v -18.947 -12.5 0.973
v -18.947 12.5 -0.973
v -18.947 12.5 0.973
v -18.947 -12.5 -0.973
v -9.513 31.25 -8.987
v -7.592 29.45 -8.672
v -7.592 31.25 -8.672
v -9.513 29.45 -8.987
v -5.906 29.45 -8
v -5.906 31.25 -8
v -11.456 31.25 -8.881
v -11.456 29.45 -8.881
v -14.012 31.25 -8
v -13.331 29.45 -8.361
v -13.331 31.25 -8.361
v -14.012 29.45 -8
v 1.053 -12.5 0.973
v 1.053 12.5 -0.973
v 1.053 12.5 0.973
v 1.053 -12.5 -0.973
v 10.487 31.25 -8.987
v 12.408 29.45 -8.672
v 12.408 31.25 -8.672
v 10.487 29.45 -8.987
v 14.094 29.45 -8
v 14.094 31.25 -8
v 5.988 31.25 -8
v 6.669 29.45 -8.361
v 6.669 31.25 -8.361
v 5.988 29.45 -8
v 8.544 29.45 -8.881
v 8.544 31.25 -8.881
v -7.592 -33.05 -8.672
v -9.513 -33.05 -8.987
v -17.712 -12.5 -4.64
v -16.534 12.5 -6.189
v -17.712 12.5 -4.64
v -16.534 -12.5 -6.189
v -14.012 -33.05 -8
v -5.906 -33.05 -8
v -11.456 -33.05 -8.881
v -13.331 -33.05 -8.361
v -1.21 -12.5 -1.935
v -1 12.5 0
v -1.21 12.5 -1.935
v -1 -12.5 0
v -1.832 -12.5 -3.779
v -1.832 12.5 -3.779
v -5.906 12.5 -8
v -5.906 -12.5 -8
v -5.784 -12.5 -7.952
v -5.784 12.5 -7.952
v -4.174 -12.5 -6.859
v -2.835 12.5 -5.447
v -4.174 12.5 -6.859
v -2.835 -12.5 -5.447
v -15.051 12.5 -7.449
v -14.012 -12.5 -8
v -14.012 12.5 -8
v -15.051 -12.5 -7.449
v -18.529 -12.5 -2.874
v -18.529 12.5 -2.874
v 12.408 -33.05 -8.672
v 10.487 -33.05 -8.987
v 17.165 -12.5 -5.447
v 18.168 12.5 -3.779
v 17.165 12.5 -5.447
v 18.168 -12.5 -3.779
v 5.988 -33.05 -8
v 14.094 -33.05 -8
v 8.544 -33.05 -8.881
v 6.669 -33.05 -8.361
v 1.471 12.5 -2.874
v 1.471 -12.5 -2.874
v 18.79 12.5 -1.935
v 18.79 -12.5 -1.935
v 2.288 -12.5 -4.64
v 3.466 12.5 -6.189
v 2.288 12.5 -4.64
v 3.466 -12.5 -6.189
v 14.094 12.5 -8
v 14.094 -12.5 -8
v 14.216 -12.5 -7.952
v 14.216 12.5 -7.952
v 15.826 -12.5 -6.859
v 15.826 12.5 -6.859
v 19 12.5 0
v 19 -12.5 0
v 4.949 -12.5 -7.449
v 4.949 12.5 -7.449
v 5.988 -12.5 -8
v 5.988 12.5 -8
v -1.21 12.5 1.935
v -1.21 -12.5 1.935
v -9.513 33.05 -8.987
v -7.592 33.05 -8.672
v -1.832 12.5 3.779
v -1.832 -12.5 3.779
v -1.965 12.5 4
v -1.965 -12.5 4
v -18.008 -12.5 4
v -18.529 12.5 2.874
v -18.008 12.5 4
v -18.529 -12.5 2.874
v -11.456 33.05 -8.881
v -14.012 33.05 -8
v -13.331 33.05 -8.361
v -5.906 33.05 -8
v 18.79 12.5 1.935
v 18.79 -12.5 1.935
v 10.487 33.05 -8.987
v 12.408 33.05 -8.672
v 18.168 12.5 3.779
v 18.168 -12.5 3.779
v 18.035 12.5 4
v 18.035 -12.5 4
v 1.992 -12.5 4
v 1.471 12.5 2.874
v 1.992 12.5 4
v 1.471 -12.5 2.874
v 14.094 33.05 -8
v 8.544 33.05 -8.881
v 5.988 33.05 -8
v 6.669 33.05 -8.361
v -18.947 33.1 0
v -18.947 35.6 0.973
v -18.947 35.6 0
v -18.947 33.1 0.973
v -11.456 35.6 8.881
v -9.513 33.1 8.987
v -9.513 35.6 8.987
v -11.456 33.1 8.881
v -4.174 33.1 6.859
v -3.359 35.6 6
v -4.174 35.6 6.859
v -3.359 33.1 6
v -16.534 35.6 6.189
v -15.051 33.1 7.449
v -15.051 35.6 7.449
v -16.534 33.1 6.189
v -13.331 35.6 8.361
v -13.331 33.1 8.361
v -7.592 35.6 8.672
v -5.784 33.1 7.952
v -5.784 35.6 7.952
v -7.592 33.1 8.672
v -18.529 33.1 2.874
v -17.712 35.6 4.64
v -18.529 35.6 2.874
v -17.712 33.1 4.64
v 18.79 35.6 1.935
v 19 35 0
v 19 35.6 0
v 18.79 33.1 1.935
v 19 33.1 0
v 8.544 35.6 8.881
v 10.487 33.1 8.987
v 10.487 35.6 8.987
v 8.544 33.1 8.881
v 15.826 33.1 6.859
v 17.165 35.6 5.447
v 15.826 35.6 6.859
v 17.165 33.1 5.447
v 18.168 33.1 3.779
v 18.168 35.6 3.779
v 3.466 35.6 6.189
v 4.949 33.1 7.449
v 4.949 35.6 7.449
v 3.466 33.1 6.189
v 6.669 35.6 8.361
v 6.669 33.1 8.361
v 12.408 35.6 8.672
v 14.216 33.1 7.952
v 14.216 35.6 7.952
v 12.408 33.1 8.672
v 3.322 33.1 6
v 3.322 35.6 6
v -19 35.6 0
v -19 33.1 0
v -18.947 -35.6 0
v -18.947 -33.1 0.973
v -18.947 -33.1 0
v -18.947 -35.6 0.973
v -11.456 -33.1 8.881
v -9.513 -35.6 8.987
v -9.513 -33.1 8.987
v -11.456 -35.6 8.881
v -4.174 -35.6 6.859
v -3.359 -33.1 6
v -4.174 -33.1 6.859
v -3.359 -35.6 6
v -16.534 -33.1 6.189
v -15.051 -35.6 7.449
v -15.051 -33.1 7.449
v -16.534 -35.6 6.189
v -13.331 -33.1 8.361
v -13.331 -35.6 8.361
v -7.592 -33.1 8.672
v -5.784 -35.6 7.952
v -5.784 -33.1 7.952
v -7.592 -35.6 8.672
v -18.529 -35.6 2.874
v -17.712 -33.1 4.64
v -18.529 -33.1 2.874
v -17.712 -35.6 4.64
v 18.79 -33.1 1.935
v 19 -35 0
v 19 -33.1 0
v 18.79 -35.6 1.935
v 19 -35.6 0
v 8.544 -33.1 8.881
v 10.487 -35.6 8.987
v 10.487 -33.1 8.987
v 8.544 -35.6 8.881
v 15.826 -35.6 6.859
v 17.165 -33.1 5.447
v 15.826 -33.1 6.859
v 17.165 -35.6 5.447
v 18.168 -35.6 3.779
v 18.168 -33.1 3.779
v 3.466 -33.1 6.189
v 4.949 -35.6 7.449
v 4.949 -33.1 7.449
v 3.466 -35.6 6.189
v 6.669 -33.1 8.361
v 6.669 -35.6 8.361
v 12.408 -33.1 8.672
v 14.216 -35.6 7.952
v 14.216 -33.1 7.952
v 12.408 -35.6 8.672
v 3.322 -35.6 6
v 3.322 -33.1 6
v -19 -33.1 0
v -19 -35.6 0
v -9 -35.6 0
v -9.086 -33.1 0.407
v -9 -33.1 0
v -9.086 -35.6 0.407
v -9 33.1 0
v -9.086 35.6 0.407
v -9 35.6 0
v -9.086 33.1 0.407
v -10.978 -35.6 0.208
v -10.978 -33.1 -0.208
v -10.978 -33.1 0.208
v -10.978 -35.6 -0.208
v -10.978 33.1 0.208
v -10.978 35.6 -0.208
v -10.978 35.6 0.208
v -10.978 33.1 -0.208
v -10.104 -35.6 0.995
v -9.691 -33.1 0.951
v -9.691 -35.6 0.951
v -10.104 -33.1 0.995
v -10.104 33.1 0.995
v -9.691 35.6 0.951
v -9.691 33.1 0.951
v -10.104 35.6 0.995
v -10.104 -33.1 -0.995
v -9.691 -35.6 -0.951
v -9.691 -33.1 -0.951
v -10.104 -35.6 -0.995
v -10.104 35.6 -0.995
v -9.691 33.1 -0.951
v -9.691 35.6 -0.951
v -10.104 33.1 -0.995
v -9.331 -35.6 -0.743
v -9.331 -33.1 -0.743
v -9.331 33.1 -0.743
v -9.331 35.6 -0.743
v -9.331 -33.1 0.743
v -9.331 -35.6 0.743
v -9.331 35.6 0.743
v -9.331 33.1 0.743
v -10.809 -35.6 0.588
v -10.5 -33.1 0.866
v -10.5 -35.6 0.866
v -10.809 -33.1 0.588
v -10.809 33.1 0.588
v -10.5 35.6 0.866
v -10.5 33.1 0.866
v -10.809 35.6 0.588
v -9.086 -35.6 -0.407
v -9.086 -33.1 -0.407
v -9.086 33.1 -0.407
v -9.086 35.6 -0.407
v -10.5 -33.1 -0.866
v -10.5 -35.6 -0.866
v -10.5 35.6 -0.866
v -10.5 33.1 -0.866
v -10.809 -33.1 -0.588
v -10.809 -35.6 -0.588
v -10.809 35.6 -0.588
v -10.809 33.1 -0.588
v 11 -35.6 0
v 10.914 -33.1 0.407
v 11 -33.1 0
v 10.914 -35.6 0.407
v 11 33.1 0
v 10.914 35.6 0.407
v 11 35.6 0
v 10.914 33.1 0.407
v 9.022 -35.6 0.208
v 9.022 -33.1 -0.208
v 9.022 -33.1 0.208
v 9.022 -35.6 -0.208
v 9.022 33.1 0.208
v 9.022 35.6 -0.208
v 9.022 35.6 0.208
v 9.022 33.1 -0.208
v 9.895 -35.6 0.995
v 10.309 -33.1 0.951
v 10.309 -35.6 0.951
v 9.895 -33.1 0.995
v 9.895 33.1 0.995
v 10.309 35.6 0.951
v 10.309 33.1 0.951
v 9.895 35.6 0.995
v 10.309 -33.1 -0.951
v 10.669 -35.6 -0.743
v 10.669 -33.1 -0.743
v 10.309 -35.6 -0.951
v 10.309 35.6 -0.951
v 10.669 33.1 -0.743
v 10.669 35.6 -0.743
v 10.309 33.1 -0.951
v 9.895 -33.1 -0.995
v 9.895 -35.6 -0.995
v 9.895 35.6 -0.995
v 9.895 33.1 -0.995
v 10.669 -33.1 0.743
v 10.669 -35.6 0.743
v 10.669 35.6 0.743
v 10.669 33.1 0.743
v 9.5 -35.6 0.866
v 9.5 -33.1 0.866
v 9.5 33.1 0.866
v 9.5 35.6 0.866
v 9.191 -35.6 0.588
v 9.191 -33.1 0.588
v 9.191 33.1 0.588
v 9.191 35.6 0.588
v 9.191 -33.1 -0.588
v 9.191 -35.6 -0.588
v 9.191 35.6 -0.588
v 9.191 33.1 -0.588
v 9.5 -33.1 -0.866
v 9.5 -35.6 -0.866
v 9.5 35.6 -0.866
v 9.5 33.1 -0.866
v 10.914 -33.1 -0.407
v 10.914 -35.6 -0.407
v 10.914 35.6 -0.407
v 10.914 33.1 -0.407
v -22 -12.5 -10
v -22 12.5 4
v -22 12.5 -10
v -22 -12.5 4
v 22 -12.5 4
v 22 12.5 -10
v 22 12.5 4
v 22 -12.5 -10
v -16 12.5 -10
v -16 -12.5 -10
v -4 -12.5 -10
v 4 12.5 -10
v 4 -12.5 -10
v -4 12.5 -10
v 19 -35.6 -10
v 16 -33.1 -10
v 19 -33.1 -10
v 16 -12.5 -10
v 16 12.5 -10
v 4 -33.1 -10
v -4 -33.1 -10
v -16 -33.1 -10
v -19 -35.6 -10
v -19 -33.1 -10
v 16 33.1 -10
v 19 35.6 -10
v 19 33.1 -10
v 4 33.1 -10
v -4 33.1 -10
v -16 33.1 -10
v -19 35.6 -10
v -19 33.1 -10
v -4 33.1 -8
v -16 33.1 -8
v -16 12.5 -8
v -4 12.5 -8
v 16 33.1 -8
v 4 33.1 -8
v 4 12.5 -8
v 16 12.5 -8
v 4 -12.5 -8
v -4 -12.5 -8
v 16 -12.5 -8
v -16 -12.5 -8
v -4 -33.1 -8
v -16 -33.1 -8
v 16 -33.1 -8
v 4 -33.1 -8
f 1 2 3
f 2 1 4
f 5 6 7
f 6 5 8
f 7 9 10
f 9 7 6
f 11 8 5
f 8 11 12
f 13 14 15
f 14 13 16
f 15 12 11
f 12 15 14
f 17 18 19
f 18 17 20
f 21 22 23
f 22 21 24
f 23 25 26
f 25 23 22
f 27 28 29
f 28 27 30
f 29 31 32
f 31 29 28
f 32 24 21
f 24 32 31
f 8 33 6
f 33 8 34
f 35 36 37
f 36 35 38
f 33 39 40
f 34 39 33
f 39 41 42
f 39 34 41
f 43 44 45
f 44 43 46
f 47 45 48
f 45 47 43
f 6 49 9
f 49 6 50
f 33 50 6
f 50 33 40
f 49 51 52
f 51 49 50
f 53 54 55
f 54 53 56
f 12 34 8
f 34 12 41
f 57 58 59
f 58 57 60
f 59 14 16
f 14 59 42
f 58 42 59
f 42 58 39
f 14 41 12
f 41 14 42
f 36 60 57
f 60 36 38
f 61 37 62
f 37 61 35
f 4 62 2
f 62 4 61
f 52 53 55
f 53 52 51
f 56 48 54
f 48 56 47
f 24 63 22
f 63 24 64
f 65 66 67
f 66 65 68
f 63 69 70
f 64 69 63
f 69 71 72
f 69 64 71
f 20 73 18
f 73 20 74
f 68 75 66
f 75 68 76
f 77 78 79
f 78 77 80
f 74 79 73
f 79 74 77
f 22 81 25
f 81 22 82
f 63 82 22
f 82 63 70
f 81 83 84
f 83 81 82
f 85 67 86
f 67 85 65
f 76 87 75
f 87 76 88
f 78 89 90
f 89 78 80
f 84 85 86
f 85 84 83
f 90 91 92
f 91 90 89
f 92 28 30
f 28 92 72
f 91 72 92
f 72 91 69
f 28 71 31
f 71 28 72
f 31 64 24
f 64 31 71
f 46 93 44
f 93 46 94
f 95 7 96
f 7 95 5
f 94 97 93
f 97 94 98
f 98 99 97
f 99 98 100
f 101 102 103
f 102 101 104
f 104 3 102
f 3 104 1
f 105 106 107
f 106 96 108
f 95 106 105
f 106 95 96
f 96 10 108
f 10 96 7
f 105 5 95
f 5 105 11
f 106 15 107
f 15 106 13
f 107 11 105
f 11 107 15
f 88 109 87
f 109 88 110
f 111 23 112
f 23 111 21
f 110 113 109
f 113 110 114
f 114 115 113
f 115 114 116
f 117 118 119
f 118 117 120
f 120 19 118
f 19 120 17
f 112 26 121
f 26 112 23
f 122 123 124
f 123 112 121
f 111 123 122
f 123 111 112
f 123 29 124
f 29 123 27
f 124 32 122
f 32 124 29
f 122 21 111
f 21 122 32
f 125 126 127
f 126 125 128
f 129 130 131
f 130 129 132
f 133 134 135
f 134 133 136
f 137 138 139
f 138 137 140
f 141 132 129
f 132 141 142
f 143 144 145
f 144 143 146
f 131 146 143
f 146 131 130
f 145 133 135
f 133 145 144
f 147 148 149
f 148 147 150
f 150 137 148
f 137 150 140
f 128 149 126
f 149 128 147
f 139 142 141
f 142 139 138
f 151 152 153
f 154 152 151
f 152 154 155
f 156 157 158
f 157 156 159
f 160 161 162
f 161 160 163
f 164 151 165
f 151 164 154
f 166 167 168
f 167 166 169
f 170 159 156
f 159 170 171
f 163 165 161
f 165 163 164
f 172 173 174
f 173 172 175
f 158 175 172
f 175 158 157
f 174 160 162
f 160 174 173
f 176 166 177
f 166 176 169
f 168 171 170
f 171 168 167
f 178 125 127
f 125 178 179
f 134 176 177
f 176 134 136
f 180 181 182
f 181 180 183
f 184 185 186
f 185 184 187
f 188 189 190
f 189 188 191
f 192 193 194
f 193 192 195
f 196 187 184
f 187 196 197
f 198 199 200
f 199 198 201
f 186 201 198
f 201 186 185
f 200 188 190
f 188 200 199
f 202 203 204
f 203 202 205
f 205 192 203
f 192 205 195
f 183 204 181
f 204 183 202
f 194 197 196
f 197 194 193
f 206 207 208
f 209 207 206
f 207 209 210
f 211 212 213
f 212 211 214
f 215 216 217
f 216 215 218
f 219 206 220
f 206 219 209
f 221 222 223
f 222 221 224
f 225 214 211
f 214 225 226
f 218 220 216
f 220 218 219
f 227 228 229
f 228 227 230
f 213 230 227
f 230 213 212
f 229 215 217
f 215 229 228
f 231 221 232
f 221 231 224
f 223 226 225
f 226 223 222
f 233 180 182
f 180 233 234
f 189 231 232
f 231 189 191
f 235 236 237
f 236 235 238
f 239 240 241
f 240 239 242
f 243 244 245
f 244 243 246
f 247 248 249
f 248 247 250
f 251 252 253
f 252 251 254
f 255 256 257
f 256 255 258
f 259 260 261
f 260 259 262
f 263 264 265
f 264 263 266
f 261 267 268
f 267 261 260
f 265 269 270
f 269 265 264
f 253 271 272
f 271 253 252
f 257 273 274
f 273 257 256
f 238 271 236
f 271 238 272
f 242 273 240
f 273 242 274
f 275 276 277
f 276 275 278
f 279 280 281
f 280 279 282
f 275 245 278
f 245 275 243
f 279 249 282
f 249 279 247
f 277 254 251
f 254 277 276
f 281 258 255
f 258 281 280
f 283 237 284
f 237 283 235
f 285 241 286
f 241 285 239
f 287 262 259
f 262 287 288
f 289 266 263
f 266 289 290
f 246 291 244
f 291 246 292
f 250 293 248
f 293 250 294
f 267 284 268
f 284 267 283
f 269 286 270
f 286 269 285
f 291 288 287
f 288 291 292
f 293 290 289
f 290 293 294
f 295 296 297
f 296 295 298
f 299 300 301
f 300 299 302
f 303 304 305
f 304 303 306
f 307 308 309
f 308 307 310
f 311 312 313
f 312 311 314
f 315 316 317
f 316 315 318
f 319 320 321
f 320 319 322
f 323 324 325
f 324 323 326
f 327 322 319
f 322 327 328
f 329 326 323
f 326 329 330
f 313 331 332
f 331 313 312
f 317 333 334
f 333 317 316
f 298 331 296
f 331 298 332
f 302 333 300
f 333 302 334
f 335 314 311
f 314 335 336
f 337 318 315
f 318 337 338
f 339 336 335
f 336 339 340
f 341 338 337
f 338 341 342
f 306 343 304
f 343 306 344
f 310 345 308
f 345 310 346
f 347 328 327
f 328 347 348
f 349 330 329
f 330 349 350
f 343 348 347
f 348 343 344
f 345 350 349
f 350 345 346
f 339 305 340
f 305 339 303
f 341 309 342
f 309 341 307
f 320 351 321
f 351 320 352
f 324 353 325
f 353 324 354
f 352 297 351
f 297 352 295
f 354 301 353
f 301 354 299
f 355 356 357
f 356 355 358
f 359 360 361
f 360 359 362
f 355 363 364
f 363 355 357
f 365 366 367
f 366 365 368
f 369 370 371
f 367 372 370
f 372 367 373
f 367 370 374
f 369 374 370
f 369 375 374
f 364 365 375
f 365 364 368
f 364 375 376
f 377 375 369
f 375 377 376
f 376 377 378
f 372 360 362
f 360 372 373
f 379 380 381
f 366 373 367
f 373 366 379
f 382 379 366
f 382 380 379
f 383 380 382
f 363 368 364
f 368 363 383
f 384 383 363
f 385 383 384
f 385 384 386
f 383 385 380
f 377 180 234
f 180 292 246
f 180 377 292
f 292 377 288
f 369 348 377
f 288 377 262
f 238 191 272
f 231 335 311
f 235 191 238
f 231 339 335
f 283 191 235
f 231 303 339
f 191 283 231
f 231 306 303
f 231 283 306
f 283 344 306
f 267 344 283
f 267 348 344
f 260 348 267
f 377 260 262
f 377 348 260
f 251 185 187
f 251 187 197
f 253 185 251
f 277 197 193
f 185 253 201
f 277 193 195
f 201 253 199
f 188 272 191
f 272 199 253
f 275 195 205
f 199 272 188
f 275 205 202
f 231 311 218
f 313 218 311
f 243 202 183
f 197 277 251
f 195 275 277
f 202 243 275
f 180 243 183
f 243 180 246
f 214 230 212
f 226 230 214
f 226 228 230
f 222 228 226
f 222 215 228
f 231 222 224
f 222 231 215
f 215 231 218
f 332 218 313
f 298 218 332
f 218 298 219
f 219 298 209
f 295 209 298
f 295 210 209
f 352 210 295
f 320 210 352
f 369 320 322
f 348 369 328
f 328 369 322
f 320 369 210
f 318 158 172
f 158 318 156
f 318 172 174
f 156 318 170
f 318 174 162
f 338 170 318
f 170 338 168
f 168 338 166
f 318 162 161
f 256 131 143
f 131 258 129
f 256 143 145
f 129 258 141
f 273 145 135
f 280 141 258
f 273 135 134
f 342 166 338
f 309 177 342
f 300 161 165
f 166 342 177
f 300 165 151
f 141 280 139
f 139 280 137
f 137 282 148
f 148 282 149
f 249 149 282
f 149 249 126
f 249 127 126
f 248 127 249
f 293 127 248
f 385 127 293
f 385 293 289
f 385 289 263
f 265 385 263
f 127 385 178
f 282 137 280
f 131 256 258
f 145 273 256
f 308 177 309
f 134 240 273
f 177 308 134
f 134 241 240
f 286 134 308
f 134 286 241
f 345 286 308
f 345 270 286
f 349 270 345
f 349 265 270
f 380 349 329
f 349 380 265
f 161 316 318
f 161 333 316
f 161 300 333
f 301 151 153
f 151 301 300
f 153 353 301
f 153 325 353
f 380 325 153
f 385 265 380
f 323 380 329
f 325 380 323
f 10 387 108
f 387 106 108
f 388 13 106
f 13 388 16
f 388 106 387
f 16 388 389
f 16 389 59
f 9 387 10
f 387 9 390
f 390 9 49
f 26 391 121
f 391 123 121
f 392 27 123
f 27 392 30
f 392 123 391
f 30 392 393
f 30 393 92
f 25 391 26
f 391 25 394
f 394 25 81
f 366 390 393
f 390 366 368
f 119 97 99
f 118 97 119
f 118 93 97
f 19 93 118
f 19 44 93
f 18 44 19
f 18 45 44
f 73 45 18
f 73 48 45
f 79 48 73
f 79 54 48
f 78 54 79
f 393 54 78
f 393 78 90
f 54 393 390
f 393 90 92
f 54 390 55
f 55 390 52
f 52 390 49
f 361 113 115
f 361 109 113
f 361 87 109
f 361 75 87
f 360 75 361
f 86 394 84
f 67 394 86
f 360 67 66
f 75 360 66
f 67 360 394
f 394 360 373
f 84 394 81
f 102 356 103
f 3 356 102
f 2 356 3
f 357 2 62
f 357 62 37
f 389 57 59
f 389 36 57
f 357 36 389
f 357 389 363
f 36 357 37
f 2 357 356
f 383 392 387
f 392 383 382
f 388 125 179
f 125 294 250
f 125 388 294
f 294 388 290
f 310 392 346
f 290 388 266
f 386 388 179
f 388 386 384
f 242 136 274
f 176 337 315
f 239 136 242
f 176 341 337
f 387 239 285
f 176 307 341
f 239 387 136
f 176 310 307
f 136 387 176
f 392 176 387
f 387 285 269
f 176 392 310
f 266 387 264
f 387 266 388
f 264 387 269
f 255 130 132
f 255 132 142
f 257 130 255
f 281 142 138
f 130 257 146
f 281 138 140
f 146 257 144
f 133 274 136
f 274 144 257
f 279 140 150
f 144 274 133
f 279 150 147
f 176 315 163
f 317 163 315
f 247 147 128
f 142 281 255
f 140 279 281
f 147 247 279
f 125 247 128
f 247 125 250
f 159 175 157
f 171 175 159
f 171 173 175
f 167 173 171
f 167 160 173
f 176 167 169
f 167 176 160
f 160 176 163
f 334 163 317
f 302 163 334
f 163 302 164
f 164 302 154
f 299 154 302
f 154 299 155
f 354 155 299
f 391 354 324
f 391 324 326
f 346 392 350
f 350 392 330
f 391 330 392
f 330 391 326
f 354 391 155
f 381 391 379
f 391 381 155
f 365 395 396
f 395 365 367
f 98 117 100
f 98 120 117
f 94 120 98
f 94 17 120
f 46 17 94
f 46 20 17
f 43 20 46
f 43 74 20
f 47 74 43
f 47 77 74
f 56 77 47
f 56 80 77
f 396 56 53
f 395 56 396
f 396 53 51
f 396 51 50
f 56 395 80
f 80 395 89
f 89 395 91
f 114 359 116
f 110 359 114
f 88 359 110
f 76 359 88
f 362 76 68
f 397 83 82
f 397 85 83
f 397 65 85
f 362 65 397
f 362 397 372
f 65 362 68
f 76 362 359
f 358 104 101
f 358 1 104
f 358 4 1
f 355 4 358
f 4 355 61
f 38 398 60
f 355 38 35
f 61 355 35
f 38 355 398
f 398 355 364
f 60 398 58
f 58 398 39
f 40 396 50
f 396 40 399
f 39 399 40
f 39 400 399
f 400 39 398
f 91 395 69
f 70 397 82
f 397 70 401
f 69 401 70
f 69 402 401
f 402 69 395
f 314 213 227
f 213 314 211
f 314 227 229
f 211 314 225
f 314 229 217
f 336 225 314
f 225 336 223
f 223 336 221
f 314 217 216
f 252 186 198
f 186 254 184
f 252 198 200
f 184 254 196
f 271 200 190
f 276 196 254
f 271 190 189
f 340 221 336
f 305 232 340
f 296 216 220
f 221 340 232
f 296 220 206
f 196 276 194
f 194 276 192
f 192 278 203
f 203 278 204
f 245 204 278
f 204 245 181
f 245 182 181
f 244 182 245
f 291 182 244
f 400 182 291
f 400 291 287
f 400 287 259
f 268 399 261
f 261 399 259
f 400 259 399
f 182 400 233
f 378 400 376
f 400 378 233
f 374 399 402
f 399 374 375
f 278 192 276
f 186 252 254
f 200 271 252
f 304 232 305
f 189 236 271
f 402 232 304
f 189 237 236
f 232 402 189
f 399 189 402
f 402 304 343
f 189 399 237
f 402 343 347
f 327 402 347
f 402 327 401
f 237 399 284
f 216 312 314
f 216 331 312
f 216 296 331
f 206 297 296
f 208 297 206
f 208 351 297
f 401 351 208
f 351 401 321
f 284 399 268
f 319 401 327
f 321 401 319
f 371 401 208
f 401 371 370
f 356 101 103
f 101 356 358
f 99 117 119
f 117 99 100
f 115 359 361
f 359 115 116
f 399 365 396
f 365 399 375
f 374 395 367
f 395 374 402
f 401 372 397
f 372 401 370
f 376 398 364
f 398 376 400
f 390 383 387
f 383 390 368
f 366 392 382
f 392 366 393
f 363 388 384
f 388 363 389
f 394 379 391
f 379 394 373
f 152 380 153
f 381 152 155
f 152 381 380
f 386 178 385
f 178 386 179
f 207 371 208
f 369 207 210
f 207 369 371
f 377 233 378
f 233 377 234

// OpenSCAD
// Bateries 18560
// Centered
module bateries() {
    rotate([90, 0, 0]) {
        translate([-10, 0, 0]) {
            cylinder(h=62.5, r=9, center=true);
            translate([20, 0, 0])
            cylinder(h=62.5, r=9, center=true);
        }
    }
}

module bateryBoxWholes() {
    rotate([90, 0, 0]) {
        translate([-10, 0, 0]) {
            cylinder(h=72.5, r=1, center=true, $fn=15);
            translate([20, 0, 0])
            cylinder(h=72.5, r=1, center=true, $fn=15);
        }
    }
}


module bateryBox() {
    
    difference() {
        cube([44, 71.2, 20], center=true);
        translate([0, 22.8, 2]) {
            cube([45, 20.6, 20], center=true);
        }
        translate([0, -22.8, 2]) {
            cube([45, 20.6, 20], center=true);
        }
        bateries();
        translate([0, -1.8, 0])
            bateries();
        translate([0, 1.8, 0])
            bateries();
        translate([0, 0, 14]) {
            cube([45, 26, 20], center=true);
        }
            
        // Díry v dolní části (úpora materiálu)
        translate([0, -22.8, -10])
            cube([8, 20.6, 10], center=true);
        translate([20, -22.8, -10])
            cube([8, 20.6, 10], center=true);
        translate([-20, -22.8, -10])
            cube([8, 20.6, 10], center=true);
            
        // Díry v dolní části (śpora materiálu)
        translate([0, 22.8, -10])
            cube([8, 20.6, 10], center=true);
        translate([-20, 22.8, -10])
            cube([8, 20.6, 10], center=true);
        translate([20, 22.8, -10])
            cube([8, 20.6, 10], center=true);
        
        // díry na kontakty
        bateryBoxWholes();
        
        // odstranění hran
        translate([26, 35, -5])
            cube(14, 10, 10, center=true);
        translate([-26, 35, -5])
            cube(14, 10, 10, center=true);
        translate([26, -35, -5])
            cube(14, 10, 10, center=true);
        translate([-26, -35, -5])
            cube(14, 10, 10, center=true);
    }
}

module angler() {
    translate([0, 35, 0]) {
        difference() {
            cube([45, 10, 22], center=true);
            bateries();
            translate([0, 0, -10])
                cube([40, 11, 20], center=true);
            translate([0, 0, -4])
                cube([30, 11, 20], center=true);
        }
    }
    translate([0, -35, 0]) {
        difference() {
            cube([45, 10, 22], center=true);
            bateries();
            translate([0, 0, -10])
                cube([40, 11, 20], center=true);
            translate([0, 0, -4])
                cube([30, 11, 20], center=true);
        }
    }
}


//bateries();
difference() {
    bateryBox();
    angler();
}
